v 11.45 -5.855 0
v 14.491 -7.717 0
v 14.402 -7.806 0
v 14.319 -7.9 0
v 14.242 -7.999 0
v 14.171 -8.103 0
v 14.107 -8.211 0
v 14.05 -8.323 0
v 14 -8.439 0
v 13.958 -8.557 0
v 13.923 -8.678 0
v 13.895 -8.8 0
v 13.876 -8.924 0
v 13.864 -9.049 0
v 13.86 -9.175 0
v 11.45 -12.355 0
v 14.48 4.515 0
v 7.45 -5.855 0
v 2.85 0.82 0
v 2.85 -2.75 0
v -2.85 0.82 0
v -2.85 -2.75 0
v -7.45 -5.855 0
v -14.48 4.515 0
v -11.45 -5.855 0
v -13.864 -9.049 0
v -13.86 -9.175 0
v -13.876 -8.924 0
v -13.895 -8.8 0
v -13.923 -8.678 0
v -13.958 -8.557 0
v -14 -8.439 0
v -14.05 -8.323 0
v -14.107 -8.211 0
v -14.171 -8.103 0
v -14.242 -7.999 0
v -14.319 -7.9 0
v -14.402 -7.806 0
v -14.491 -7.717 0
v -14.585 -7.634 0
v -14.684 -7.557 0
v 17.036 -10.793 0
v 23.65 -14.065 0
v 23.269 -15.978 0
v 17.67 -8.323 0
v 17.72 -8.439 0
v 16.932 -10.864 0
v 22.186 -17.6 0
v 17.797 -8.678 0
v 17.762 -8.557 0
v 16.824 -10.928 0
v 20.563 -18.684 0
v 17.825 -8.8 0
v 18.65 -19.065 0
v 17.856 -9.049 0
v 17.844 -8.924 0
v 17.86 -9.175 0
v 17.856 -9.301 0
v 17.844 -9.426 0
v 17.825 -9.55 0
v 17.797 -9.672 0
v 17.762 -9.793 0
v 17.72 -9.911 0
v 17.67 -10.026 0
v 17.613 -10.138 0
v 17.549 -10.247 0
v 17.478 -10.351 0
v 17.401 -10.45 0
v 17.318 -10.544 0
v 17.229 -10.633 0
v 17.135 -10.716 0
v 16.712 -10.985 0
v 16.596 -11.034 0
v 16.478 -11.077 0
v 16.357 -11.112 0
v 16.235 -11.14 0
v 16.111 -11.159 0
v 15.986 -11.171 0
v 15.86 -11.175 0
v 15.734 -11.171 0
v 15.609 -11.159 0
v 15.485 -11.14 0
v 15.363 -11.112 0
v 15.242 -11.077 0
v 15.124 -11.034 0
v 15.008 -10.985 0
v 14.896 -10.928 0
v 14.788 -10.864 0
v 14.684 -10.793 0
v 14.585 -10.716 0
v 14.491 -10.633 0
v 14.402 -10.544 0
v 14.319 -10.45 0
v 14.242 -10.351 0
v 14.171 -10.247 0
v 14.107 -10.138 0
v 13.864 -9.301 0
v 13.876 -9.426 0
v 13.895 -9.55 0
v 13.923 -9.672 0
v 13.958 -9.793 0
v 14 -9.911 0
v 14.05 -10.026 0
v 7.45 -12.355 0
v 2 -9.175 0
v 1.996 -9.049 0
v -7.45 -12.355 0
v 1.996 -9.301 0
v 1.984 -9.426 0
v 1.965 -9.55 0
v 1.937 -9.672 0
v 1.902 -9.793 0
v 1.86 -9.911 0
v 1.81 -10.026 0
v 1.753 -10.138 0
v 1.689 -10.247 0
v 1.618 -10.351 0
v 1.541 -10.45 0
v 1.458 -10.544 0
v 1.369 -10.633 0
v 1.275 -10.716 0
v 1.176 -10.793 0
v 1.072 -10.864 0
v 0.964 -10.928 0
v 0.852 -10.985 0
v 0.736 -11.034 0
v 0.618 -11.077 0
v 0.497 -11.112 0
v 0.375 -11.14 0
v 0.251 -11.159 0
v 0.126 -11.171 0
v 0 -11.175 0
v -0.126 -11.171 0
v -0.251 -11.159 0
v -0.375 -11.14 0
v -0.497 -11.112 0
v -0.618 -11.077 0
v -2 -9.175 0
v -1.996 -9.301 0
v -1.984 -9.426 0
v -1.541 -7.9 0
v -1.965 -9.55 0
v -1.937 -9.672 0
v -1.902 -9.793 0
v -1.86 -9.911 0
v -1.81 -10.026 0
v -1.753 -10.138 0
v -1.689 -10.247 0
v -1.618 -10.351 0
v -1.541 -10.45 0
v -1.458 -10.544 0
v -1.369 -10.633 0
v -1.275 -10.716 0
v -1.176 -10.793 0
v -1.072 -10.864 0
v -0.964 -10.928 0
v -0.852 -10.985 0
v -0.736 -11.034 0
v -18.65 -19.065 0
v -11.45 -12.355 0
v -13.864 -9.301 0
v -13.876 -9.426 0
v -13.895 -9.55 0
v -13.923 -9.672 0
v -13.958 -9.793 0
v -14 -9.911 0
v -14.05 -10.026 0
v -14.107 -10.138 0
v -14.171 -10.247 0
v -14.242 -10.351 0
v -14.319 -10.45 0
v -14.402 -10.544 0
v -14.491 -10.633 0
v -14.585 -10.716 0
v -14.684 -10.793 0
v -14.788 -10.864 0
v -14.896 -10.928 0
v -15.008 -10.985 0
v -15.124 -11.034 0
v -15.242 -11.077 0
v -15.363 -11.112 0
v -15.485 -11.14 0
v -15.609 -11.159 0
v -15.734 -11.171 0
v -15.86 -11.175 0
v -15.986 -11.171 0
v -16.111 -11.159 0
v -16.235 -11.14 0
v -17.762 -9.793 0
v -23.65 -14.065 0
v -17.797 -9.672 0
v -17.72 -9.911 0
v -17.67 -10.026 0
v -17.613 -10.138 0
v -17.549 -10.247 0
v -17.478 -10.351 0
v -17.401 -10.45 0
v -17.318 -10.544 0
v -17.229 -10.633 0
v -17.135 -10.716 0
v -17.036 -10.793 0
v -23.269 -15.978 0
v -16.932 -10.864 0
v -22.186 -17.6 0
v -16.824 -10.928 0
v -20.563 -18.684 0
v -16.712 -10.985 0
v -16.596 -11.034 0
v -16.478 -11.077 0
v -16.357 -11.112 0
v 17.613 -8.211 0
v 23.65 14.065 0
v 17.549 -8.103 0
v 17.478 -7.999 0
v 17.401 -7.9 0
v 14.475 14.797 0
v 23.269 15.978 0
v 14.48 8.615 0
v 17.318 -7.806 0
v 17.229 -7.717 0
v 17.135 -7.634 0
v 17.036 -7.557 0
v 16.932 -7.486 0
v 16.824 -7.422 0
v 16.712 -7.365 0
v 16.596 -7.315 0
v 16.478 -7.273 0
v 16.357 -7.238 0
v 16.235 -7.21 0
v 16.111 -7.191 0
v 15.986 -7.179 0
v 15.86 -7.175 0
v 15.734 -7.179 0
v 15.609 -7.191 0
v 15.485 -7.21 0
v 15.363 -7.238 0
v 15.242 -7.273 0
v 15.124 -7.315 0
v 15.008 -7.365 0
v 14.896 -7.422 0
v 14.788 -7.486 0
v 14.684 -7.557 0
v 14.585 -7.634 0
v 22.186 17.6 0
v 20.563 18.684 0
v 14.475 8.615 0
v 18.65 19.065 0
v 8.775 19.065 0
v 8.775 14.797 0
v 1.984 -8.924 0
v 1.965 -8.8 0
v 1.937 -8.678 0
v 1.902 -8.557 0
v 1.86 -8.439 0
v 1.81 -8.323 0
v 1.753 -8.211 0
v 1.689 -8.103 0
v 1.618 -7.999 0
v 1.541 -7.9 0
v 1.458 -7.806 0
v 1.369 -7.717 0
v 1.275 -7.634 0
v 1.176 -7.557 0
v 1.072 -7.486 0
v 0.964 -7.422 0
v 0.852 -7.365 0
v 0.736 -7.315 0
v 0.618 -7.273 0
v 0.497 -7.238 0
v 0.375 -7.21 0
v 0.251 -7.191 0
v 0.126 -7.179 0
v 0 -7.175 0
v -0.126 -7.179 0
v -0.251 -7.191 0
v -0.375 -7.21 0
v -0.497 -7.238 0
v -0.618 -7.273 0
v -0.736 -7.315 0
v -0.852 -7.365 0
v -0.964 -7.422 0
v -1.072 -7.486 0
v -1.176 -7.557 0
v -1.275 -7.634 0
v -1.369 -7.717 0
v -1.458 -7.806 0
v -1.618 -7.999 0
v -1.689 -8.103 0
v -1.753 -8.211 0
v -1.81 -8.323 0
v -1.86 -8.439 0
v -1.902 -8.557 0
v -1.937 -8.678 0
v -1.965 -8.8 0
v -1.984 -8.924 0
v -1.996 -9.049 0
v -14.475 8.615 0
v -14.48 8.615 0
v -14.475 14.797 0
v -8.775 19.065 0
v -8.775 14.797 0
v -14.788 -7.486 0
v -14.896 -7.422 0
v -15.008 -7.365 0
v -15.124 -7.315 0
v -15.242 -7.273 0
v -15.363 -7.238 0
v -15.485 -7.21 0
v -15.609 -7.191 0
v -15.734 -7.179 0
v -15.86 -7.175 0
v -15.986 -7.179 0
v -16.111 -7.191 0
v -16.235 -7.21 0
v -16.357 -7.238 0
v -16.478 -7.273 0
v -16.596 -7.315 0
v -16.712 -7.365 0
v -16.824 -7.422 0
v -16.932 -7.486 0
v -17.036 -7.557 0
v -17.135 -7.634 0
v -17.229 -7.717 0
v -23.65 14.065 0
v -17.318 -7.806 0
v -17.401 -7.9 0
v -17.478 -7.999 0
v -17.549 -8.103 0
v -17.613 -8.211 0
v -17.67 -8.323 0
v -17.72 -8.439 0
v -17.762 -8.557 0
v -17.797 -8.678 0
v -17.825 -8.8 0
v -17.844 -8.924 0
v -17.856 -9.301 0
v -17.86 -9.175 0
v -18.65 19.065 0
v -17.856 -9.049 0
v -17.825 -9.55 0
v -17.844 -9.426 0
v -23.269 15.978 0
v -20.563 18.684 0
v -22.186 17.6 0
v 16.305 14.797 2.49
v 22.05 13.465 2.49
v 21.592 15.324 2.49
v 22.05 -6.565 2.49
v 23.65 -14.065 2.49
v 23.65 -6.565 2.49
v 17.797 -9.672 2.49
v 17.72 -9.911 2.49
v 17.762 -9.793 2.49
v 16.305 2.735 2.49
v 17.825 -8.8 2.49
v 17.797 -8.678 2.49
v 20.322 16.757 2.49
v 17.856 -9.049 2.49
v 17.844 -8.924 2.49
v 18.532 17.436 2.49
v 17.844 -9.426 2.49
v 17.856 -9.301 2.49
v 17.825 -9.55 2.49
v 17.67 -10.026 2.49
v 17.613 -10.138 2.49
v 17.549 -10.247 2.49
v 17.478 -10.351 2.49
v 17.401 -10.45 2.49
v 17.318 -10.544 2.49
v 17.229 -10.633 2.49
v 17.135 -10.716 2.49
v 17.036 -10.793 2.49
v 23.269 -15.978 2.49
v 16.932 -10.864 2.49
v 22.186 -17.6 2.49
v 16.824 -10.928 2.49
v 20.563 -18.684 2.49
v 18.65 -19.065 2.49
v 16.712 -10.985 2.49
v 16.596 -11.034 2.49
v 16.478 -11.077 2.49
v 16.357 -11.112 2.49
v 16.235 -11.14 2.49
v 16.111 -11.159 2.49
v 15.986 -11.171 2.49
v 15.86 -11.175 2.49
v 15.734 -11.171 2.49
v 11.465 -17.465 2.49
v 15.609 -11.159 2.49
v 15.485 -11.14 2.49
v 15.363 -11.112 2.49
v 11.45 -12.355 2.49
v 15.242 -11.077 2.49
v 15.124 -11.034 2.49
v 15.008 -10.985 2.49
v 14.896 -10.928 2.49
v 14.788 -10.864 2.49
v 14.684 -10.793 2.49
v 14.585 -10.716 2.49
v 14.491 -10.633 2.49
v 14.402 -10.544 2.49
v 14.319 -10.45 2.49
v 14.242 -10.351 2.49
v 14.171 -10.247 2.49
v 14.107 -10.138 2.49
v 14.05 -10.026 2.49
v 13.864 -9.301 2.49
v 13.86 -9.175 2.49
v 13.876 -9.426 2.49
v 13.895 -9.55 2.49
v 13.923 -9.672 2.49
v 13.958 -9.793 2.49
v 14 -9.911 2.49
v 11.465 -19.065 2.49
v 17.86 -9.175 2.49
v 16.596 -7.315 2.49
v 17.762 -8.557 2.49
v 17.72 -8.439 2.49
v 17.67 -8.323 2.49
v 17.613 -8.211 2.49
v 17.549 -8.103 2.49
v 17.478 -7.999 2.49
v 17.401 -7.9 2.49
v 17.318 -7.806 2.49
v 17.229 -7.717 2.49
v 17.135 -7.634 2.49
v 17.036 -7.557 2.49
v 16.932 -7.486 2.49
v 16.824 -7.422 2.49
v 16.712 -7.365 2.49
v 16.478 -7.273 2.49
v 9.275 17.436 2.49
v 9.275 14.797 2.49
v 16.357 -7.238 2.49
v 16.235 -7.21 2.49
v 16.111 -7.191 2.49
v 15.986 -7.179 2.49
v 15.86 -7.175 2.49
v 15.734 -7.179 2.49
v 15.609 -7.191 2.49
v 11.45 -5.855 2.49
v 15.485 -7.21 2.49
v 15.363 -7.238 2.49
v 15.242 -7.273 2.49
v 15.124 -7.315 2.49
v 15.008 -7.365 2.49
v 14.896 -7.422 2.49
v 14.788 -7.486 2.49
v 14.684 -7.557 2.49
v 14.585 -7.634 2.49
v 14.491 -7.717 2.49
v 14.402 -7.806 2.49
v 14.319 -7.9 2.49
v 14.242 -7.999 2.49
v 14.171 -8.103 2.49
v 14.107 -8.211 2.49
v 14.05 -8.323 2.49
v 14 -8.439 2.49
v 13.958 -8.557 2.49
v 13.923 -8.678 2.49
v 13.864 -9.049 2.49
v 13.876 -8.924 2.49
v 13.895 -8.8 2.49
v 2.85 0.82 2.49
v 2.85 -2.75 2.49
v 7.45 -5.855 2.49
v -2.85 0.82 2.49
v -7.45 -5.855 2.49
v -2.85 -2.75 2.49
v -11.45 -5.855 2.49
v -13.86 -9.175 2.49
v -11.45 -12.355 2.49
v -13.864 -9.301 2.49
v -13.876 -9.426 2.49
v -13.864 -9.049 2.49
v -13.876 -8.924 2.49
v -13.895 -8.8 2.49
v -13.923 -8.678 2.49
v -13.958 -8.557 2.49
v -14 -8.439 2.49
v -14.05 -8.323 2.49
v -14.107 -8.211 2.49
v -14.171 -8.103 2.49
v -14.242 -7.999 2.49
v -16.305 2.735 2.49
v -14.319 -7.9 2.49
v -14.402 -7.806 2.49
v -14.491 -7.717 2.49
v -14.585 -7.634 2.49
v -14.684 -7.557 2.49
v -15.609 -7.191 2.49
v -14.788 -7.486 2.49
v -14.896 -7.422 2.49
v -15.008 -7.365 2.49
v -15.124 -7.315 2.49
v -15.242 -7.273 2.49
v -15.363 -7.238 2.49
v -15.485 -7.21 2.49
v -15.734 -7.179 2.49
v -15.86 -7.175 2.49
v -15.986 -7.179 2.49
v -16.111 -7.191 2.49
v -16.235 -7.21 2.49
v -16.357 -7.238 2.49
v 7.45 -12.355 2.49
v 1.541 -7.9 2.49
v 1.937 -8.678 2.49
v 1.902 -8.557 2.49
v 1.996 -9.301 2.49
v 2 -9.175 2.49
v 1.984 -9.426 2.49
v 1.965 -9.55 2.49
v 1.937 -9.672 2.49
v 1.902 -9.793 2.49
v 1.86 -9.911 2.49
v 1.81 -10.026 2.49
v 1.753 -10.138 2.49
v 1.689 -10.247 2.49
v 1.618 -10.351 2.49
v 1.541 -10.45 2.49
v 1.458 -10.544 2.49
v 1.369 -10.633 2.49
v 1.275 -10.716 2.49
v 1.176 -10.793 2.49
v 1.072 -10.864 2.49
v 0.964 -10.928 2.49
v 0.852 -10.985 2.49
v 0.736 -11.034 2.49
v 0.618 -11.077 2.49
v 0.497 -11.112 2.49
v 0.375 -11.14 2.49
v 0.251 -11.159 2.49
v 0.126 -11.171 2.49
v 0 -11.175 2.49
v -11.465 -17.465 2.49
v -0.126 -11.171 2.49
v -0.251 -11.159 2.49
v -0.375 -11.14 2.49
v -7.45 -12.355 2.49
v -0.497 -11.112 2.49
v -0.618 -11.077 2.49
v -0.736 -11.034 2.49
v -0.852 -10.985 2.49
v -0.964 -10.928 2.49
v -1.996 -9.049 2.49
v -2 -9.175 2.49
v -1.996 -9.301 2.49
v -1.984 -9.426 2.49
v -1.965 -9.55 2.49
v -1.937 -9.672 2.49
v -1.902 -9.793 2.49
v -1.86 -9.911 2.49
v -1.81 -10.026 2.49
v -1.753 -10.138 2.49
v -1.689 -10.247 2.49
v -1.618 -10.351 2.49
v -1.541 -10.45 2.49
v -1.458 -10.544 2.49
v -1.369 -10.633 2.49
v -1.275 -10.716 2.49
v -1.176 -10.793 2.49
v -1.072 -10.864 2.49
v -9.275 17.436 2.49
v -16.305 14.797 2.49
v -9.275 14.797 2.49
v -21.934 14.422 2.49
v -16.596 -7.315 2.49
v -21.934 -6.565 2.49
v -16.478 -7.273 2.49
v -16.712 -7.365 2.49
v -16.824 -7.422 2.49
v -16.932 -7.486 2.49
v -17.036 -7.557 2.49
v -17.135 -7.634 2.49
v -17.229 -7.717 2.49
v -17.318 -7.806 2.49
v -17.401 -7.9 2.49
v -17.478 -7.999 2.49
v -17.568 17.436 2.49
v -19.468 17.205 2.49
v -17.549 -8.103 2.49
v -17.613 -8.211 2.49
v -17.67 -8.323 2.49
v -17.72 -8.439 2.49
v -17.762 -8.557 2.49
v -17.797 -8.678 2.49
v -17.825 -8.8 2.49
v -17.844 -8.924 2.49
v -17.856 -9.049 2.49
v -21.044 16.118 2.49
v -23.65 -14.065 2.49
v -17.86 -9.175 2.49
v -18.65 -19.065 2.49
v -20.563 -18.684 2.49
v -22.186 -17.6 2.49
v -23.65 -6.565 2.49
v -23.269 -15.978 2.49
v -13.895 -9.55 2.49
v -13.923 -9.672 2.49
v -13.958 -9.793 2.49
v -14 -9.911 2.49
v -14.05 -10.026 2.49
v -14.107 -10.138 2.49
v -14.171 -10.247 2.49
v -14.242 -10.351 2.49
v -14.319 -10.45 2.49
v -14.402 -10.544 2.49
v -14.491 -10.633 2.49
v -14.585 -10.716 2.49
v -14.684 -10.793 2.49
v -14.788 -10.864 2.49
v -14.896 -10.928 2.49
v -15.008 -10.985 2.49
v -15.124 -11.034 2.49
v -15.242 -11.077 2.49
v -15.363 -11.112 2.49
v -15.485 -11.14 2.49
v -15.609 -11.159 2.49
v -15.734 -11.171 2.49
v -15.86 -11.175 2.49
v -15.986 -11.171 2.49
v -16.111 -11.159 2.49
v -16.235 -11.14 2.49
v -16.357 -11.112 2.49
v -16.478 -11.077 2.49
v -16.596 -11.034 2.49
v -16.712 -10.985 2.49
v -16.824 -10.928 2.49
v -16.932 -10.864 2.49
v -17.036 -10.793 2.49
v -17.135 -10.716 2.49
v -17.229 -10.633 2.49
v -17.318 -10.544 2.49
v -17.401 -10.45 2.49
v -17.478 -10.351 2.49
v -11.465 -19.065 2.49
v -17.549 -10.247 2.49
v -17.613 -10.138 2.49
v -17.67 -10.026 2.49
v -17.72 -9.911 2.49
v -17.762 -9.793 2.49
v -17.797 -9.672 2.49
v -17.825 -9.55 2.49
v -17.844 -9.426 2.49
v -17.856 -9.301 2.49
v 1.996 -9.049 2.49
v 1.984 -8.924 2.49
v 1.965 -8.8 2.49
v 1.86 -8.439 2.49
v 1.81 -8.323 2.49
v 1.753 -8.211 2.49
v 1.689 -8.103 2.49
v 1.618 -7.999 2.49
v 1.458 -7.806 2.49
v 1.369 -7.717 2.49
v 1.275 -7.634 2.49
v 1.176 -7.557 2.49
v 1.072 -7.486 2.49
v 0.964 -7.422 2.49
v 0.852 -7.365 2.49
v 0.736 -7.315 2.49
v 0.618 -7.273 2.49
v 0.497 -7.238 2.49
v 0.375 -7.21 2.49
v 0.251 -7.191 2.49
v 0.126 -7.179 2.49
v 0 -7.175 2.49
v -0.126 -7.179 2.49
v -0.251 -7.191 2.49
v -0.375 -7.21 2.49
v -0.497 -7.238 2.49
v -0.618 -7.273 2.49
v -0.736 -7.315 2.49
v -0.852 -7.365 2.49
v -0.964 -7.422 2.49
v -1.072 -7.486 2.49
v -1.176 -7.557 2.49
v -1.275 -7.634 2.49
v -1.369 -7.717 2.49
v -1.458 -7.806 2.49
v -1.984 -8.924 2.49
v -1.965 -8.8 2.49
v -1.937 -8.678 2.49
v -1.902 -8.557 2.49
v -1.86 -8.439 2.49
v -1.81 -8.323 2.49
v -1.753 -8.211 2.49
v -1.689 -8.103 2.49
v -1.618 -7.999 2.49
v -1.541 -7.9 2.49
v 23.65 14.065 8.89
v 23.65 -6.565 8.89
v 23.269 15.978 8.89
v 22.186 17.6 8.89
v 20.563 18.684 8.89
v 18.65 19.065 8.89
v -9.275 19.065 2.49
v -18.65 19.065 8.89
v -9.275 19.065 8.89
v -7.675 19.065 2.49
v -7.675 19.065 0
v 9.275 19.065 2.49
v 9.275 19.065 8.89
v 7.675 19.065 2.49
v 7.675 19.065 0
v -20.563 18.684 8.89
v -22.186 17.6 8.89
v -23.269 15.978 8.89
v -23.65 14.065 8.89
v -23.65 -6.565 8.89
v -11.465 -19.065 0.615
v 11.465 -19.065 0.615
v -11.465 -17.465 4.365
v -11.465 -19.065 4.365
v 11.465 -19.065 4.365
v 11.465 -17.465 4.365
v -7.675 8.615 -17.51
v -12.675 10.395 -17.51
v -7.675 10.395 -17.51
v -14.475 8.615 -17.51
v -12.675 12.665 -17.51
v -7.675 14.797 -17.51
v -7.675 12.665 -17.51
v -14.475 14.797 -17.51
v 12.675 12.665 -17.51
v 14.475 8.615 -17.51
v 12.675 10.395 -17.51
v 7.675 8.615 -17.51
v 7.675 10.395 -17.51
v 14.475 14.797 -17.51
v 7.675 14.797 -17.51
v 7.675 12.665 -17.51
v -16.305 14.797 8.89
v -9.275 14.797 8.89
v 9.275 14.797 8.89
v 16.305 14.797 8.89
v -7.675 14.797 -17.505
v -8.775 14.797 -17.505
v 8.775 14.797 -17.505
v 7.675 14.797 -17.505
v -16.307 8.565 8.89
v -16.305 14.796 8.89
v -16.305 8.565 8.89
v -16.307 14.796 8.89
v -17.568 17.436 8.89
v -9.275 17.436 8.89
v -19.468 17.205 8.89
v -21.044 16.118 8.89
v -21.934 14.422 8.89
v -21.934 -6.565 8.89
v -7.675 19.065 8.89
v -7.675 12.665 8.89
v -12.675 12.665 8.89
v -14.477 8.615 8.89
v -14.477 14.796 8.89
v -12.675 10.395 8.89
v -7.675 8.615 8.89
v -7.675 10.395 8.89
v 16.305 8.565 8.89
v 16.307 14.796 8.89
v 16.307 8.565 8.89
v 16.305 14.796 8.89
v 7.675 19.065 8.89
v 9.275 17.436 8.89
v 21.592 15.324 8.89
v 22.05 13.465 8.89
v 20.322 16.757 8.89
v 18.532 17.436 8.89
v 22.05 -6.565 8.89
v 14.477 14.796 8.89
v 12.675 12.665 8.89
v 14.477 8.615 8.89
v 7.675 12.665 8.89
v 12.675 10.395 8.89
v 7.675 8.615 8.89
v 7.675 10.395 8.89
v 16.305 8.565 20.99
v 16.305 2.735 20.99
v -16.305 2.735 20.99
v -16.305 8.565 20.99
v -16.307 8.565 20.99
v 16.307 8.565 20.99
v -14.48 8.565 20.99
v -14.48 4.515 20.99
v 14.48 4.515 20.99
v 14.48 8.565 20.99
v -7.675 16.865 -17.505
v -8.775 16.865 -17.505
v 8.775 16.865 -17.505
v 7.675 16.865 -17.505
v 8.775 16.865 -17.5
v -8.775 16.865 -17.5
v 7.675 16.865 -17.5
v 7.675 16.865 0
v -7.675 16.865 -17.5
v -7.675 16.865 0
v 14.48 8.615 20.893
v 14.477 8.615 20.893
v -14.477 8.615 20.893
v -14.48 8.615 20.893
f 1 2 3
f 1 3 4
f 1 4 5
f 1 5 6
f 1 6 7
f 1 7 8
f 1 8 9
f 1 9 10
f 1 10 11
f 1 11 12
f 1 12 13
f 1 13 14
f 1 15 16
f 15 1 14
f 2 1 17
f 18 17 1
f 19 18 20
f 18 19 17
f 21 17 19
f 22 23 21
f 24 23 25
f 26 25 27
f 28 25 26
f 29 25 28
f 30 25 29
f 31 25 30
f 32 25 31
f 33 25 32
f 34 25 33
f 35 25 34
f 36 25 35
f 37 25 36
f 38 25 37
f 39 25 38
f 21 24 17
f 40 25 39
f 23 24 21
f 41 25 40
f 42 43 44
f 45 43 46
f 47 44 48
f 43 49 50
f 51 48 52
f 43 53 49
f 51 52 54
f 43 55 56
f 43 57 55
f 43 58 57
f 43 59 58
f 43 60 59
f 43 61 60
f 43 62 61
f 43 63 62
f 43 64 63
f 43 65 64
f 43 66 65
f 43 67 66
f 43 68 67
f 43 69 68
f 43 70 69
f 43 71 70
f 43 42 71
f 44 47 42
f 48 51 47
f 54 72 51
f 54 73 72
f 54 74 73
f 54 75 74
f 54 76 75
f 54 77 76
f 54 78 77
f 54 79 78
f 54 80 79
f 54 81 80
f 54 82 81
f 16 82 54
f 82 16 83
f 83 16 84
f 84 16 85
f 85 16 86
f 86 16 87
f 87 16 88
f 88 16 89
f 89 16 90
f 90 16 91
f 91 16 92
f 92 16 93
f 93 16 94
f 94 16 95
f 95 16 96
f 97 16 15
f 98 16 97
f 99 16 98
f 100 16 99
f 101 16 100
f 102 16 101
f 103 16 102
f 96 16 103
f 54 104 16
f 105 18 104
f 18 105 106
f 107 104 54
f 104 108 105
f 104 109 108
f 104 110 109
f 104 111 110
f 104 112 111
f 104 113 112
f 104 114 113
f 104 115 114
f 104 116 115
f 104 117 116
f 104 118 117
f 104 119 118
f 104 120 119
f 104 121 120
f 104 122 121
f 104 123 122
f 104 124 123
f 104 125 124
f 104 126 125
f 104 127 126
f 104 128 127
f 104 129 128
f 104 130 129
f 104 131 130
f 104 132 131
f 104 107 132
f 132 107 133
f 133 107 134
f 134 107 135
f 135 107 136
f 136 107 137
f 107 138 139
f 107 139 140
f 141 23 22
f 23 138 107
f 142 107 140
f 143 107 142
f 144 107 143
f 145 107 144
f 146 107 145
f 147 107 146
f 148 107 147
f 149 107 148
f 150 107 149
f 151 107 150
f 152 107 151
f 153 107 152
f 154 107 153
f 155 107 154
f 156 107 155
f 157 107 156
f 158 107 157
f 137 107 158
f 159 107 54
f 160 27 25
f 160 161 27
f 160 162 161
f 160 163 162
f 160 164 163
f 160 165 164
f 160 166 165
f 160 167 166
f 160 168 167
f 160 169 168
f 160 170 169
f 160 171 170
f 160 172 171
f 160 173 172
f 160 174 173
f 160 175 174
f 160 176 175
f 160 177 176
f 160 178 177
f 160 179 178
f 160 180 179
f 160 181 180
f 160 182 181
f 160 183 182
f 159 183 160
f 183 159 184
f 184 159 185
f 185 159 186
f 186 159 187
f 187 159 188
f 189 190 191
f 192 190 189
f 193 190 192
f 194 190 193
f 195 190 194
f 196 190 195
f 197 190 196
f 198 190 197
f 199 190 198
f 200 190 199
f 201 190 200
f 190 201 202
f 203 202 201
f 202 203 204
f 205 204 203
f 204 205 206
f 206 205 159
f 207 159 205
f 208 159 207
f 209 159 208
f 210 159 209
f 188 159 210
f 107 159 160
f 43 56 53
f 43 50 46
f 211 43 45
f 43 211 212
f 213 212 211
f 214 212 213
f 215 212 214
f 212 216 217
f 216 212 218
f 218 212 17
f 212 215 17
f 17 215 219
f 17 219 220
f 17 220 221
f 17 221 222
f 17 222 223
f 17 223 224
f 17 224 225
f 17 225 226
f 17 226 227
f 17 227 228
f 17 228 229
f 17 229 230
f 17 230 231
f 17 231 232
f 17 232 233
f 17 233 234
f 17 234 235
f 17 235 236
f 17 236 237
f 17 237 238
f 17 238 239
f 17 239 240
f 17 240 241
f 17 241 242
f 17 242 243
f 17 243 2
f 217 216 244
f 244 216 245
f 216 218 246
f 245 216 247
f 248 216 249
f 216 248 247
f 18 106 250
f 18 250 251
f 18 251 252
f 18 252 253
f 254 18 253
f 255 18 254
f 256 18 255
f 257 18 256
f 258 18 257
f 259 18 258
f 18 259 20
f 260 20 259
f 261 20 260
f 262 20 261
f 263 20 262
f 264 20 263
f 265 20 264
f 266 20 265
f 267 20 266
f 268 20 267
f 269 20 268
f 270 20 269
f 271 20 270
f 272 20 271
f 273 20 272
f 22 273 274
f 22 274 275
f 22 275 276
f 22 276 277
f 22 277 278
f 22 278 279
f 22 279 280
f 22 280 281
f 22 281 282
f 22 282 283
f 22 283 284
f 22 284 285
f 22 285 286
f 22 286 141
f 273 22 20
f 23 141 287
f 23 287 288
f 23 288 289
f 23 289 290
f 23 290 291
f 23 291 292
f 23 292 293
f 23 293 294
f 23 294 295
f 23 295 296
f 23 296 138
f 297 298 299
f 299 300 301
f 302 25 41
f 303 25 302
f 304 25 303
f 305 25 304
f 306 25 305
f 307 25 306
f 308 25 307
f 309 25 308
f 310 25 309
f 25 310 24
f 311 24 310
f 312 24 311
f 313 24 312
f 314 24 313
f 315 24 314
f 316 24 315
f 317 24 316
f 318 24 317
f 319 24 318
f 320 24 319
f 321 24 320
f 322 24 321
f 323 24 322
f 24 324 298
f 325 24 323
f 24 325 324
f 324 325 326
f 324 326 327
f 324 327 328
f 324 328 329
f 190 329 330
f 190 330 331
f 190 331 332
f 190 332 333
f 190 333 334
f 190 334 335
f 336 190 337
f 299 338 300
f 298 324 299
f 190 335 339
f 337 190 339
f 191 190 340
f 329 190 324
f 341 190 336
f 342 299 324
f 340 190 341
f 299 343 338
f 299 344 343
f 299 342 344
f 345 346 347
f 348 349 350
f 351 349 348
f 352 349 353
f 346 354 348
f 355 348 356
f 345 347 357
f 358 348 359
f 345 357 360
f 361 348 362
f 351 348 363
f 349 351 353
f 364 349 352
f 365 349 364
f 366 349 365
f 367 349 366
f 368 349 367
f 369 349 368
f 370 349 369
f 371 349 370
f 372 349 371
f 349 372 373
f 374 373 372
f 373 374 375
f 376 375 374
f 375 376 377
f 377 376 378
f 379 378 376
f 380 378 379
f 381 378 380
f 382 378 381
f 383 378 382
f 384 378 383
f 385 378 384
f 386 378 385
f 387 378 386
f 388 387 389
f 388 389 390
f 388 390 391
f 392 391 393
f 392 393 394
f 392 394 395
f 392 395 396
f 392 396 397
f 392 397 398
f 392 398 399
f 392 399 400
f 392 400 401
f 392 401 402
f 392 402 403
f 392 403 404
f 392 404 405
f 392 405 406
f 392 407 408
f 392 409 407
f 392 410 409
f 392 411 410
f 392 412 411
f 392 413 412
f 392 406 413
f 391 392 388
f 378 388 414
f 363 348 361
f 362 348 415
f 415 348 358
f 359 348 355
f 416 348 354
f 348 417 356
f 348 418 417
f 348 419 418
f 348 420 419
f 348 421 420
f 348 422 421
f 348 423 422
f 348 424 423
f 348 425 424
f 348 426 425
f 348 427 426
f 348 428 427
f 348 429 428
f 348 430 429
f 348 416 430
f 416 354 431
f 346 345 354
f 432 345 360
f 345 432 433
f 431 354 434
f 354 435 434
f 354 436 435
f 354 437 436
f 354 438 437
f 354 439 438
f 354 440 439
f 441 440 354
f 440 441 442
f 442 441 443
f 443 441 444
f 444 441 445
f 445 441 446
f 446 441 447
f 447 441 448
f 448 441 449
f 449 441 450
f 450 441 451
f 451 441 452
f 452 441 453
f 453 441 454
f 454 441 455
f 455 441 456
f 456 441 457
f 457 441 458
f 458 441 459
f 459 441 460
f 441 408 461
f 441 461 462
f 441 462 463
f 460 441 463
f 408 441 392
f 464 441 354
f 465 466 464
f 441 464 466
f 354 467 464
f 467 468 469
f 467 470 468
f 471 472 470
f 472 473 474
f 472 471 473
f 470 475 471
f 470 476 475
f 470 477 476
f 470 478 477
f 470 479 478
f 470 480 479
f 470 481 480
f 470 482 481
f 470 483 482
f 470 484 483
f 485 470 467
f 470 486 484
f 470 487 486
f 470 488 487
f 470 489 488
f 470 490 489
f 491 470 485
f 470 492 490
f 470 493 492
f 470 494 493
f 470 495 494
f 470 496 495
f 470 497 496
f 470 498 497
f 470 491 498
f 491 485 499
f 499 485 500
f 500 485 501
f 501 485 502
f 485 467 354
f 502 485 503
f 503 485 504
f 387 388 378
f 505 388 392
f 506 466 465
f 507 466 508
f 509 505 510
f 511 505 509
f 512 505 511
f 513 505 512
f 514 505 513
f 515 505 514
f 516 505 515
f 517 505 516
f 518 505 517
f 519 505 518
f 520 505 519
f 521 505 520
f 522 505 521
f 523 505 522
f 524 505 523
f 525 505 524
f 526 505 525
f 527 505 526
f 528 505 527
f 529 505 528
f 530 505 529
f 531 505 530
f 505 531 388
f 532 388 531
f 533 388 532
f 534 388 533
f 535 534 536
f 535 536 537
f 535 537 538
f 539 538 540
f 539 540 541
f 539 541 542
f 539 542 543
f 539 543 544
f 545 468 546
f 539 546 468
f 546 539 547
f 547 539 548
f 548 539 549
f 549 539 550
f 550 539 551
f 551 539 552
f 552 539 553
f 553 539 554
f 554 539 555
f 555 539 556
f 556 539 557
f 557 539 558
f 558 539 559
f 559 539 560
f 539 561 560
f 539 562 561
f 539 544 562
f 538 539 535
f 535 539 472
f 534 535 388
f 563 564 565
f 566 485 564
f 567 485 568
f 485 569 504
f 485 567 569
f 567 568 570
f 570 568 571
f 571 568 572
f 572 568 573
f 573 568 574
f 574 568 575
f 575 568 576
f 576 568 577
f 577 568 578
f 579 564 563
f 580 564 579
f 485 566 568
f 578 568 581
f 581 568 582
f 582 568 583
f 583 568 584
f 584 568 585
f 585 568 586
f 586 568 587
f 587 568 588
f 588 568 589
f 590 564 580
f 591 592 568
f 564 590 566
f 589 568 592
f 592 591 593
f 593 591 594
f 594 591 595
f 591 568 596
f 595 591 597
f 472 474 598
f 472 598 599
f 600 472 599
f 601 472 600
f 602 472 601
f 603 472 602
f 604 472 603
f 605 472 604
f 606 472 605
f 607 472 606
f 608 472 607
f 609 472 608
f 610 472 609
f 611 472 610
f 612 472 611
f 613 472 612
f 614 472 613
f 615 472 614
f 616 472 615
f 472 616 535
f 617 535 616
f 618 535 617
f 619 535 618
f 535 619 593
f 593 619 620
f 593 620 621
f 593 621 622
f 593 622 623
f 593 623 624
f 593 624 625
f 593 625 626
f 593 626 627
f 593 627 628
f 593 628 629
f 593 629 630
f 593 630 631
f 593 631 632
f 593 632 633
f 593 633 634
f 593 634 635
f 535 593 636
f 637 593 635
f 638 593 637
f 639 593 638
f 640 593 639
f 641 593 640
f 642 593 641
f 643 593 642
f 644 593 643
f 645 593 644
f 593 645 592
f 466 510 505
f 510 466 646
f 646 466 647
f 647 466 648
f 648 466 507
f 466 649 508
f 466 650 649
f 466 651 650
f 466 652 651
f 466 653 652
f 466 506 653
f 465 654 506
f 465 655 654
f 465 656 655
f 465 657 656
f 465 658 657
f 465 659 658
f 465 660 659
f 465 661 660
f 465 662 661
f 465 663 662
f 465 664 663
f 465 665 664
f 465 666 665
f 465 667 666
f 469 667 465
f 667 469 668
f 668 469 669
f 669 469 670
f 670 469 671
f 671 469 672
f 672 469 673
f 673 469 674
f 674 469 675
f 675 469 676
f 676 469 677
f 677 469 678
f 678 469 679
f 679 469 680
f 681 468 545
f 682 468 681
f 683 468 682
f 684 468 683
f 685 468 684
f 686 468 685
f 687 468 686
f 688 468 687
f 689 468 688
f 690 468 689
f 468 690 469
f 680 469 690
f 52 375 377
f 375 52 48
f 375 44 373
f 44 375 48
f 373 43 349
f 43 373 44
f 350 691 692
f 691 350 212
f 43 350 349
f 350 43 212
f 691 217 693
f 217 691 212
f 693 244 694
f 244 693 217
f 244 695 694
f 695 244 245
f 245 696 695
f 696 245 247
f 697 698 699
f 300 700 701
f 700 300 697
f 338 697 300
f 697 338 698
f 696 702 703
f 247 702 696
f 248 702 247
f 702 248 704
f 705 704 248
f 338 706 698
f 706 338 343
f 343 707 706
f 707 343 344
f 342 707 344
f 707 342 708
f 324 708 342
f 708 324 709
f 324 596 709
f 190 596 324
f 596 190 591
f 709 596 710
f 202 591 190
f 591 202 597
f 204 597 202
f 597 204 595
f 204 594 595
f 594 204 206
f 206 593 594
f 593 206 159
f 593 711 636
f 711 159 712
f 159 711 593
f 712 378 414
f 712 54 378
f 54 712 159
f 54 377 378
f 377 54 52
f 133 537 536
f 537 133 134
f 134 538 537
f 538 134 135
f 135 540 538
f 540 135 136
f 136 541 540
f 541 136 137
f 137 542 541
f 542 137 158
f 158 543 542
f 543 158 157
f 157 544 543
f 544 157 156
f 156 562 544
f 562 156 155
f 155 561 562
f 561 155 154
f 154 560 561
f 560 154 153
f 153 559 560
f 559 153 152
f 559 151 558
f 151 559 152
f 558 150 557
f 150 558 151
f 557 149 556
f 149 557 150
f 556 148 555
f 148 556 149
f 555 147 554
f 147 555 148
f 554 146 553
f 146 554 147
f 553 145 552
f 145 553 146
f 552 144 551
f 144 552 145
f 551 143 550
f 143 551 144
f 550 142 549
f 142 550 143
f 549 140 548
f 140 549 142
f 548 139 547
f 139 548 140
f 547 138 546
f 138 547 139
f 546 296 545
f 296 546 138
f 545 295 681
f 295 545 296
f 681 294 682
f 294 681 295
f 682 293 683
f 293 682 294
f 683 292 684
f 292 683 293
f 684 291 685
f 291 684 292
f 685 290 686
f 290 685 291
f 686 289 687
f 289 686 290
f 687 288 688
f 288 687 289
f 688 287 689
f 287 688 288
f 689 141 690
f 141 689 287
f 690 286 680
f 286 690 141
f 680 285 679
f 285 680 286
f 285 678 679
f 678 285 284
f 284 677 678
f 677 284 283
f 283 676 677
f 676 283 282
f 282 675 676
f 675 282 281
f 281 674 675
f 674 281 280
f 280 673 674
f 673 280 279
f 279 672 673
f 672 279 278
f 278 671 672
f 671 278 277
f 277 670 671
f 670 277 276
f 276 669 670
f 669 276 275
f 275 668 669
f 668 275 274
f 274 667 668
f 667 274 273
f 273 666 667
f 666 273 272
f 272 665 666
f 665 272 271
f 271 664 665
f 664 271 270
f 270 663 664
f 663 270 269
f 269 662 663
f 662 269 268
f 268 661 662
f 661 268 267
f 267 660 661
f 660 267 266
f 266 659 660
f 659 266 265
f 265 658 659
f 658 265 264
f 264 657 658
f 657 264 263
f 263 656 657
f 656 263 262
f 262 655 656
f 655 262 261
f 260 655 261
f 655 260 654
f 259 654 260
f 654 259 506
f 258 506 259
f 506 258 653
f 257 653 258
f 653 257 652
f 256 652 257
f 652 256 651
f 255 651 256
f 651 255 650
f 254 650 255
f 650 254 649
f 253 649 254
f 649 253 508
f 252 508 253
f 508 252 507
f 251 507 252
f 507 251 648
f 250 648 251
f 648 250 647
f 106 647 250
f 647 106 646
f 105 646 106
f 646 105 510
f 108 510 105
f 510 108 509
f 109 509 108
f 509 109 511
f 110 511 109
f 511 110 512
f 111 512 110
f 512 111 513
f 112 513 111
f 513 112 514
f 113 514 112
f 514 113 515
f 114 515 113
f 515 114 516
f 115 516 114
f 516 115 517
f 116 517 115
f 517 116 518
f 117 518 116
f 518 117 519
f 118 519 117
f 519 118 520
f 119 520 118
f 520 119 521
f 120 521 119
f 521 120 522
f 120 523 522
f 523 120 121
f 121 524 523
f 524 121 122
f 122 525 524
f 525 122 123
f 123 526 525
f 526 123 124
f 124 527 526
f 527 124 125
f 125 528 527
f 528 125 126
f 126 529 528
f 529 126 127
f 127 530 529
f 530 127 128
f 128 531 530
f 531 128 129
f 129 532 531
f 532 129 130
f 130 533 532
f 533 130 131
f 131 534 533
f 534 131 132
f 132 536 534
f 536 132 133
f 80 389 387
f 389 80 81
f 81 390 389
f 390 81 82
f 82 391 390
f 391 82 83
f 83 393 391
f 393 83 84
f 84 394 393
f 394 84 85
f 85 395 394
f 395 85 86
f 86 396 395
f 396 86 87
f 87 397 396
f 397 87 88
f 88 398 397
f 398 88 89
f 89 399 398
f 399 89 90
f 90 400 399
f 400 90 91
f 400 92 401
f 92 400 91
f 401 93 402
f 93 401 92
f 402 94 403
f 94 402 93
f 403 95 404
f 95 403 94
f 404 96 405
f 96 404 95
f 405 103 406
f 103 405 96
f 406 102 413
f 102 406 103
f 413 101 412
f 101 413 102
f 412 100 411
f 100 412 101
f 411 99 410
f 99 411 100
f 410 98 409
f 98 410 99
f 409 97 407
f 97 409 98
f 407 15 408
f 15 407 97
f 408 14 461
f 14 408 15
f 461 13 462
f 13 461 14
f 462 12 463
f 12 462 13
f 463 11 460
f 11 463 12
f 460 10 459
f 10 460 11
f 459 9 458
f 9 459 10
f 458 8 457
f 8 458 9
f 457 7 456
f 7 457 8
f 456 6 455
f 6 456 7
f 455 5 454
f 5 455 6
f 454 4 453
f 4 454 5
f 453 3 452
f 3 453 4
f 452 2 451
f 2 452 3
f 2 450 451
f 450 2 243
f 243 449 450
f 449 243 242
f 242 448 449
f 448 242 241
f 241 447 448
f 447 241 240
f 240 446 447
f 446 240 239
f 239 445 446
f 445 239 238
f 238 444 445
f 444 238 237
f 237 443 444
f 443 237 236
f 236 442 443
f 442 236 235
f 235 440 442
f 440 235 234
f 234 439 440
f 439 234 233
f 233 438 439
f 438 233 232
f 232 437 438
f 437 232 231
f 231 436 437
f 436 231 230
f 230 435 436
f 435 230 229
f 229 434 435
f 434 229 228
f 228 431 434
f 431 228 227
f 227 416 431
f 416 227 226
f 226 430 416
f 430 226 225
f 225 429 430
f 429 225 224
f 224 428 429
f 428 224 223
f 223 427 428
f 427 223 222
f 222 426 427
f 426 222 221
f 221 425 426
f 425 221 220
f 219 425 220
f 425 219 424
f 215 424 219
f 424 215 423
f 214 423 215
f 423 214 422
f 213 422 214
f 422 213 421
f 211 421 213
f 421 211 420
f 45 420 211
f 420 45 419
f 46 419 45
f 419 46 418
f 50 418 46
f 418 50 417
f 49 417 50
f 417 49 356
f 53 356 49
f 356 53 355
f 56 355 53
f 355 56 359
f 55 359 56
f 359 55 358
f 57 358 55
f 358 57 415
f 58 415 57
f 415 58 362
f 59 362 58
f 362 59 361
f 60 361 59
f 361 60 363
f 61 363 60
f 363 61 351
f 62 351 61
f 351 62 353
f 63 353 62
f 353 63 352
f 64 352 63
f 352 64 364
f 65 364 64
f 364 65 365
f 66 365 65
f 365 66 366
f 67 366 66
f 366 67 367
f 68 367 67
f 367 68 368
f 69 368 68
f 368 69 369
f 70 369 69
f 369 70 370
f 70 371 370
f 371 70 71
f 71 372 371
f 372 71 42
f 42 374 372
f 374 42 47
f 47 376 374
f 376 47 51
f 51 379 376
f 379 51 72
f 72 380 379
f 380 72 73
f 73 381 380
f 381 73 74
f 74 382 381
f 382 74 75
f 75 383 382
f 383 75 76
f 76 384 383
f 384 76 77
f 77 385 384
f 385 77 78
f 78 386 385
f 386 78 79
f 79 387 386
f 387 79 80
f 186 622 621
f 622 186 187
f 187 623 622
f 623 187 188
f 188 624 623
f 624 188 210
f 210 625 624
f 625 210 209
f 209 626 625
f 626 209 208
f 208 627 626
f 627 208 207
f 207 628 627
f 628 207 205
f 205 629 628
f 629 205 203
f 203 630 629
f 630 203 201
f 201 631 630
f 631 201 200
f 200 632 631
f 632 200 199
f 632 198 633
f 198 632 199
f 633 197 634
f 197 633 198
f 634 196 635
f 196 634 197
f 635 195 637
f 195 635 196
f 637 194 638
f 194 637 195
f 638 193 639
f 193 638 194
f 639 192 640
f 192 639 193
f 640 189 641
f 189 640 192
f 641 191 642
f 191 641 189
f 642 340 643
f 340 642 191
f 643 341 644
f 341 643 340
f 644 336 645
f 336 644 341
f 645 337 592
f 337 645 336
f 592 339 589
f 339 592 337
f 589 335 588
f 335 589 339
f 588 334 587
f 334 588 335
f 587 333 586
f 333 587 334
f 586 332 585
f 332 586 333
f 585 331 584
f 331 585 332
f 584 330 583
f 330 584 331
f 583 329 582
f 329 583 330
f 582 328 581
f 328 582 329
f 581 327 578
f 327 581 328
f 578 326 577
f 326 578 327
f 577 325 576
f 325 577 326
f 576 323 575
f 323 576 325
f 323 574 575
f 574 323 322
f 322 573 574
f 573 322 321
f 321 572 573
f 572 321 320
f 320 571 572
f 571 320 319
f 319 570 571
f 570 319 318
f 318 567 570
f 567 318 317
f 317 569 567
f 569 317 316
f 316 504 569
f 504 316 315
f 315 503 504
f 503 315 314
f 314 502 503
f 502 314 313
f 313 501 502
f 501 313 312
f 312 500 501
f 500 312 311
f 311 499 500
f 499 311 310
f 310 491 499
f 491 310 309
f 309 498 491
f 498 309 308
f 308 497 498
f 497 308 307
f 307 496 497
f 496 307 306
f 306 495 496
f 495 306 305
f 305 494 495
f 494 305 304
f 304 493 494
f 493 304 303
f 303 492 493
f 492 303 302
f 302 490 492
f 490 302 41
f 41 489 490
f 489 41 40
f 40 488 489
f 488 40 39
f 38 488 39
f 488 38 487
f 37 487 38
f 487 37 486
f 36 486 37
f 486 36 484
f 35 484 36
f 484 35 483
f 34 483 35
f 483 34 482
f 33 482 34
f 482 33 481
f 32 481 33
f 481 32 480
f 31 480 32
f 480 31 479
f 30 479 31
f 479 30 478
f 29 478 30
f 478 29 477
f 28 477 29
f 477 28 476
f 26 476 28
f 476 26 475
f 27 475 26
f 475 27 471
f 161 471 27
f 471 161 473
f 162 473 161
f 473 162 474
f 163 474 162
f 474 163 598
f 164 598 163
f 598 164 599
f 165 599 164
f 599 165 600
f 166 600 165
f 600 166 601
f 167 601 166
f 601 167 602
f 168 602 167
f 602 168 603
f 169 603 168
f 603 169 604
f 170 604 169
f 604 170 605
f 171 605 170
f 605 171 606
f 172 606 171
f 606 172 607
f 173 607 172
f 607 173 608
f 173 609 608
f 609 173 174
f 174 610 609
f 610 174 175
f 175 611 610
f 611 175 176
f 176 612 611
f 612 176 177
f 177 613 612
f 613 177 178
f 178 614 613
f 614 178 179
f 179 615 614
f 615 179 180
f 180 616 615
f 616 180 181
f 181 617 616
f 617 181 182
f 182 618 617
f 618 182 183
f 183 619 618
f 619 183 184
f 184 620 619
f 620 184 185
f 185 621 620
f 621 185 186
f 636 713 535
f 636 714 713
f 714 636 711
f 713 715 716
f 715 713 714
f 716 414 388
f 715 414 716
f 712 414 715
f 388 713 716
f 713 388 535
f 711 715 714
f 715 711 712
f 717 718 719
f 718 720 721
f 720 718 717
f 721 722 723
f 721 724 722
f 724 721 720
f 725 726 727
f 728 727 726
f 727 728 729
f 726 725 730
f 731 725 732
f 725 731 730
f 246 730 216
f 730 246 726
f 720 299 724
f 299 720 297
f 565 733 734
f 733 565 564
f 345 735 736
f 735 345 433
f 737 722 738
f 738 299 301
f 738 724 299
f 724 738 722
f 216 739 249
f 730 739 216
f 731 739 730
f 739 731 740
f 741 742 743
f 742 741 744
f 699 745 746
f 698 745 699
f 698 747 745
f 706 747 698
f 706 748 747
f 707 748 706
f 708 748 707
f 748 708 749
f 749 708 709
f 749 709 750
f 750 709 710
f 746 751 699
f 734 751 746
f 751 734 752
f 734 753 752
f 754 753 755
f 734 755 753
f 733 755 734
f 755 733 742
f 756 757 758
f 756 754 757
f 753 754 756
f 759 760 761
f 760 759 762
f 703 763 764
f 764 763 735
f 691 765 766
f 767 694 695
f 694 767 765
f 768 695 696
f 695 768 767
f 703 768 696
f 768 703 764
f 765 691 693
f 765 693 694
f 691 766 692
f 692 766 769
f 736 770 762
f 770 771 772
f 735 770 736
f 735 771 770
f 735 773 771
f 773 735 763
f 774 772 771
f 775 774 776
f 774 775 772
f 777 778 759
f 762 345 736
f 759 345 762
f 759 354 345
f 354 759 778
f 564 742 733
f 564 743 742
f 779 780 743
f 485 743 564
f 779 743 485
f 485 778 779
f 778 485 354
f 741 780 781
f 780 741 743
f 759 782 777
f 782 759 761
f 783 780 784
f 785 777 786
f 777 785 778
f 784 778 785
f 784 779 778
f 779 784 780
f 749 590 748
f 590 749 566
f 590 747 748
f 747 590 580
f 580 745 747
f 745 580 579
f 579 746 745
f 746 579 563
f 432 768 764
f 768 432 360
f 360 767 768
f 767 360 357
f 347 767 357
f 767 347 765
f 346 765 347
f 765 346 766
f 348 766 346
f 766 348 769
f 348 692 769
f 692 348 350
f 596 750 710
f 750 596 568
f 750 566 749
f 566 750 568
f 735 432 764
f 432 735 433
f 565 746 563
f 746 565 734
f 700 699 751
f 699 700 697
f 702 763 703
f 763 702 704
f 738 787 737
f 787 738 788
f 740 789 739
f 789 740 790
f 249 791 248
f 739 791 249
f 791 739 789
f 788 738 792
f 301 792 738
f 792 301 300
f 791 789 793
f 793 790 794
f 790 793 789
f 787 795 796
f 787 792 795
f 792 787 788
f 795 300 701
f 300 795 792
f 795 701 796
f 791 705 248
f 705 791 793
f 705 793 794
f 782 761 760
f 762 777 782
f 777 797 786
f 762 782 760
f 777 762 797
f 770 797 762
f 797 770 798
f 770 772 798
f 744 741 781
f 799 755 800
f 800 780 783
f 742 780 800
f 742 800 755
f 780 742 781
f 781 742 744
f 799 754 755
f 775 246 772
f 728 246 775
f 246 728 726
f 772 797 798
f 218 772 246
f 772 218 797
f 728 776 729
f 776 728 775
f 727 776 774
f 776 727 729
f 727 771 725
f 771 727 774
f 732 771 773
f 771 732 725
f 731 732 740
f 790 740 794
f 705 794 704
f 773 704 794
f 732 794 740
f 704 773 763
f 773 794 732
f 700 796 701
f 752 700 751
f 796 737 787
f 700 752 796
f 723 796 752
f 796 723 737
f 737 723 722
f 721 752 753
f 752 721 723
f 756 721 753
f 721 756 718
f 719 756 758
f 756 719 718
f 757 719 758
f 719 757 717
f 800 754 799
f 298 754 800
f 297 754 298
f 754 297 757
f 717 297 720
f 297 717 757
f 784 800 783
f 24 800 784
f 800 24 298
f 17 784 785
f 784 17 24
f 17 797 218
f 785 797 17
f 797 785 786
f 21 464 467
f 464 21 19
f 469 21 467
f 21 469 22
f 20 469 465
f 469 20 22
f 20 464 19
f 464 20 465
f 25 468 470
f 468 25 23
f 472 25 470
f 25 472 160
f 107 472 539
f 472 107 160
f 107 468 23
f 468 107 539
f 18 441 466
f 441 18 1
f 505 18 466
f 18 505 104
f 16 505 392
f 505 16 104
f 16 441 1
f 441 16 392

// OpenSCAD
width = 47.3;
height = 38.13;
central_thickness = 2.49;
corner_radius = 5;

module socket() {
    difference() {
        union() {
            linear_extrude(central_thickness) difference() {
                minkowski() {
                    square([width-(2*corner_radius), height-(2*corner_radius)], true);
                    circle(r=5);
                }
            
                translate([0, -(height / 2) + 9.89, 0]) union() {
                    circle(r=2, $fn=100);
                    translate([(width/2) - (4/2) - 5.79, 0, 0]) circle(r=2, $fn=100);
                    translate([-(width/2) + (4/2) + 5.79, 0, 0]) circle(r=2, $fn=100);
                }
            
            
            }
            
            assign(this_height=1.6) {
                translate([0, -(height / 2) + (this_height/2), central_thickness]) cube([22.93, 1.6, 3.75], true);
            }
            
            assign(this_amount_above=6.4, this_total_height=26.4, this_width=28.95, this_top_offset=4.268, this_depth=8.3) {
                translate([0, height/2 - this_depth/2 - this_top_offset, -this_total_height + central_thickness + this_amount_above]) linear_extrude(this_total_height) {
                    square([this_width, this_depth], true);
                }
            }
            assign(this_amount_above=18.5, this_total_height=18.5, this_width=32.61, this_top_offset=10.5, this_depth=5.83) {
                translate([0, height/2 - this_depth/2 - this_top_offset, -this_total_height + central_thickness + this_amount_above]) linear_extrude(this_total_height) {
                    square([this_width, this_depth], true);
                }
            }

            translate([0, 0, central_thickness]) linear_extrude(6.4) difference() {
                minkowski() {
                    square([width-(2*corner_radius), height-(2*corner_radius)], true);
                    circle(r=5);
                }

                assign(this_corner_radius=4) {
                    minkowski() {
                        square([width-(2*this_corner_radius)-(1.6*2), height-(2*this_corner_radius)-(1.6*2)], true);
                        circle(r=this_corner_radius);
                    }
                }

                translate([0, -25.63, 0]) square([width, height], true);
            }

            translate([0, (height/2) - (6.4/2), central_thickness]) linear_extrude(6.4) square([18.55, 6.4], true);

            assign(this_amount_above=6.4, this_total_height=6.4, this_width=32.61, this_top_offset=4.268, this_depth=8.3) {
                translate([0, height/2 - this_depth/2 - this_top_offset, -this_total_height + central_thickness + this_amount_above]) linear_extrude(this_total_height) {
                    square([this_width, this_depth], true);
                }
            }

            assign(this_amount_above=0, this_total_height=18.685+1.31, this_width=17.55, this_top_offset=2.2, this_depth=4.2) {
                translate([0, height/2 - this_depth/2 - this_top_offset, -this_total_height + central_thickness + this_amount_above]) linear_extrude(this_total_height) {
                    square([this_width, this_depth], true);
                }
            }

            translate([-(17.55/2), height/2-2.2, 0]) rotate([-90, 0, -90]) linear_extrude(1.1) polygon(points=[ [0, 0], [0, 17.5], [-2.2, 0] ]);
            mirror([1, 0, 0]) translate([-(17.55/2), height/2-2.2, 0]) rotate([-90, 0, -90]) linear_extrude(1.1) polygon(points=[ [0, 0], [0, 17.5], [-2.2, 0] ]);

            translate([(32.614/2), height/2-10.5, central_thickness + 6.4]) rotate([90, 0, -90]) linear_extrude(1.83) polygon(points=[[0, 0], [0, 12.1], [-6.231, 0]]);

            mirror([1, 0, 0]) translate([(32.614/2), height/2-10.5, central_thickness + 6.4]) rotate([90, 0, -90]) linear_extrude(1.83) polygon(points=[[0, 0], [0, 12.1], [-6.231, 0]]);
        }

        // All of the cut-outs that extend the entire z axis.
        translate([0, 0, -50]) linear_extrude(100) union() {
            translate([0, -(height / 2) + 18.1, 0]) square([5.7, 3.57], true);
        
            assign(this_height=14.5) {
                translate([0, (height / 2) - (this_height/2) + 1, 0]) square([15.35, this_height + 1], true);
            }
        
            assign(this_height=2.27) {
                translate([0, (height / 2) + (this_height/2) - 8.5 - .17, 0]) square([25.35, this_height], true);
            }
        
            assign(this_height=4.1) {
                translate([0, (height / 2) - (this_height/2) - 10.45, 0]) square([28.96, this_height], true);
            }
        
            assign(this_height=6.5) {
                translate([-(width/2) + (4/2) + 12.2, -(height / 2) + (this_height/2) + 6.71, 0]) square([4, this_height], true);
                translate([(width/2) - (4/2) - 12.2, -(height / 2) + (this_height/2) + 6.71, 0]) square([4, this_height], true);
            }
        }
    }
}

module printable_socket() {
    translate( [0, 0, -central_thickness / 2] ) intersection() {
        socket();
        translate([-width / 2, -height / 2, central_thickness / 2]) cube( [ width, height, 999 ] );
    }

    translate([-width, height + 2, 0]) rotate([180, 0, 0]) translate( [width, 0, - central_thickness / 2] ) intersection() {
        socket();
        translate([-width / 2, -height / 2, -999 + (central_thickness / 2)]) cube( [ width, height, 999 ] );
    }
}

socket();
//printable_socket();
